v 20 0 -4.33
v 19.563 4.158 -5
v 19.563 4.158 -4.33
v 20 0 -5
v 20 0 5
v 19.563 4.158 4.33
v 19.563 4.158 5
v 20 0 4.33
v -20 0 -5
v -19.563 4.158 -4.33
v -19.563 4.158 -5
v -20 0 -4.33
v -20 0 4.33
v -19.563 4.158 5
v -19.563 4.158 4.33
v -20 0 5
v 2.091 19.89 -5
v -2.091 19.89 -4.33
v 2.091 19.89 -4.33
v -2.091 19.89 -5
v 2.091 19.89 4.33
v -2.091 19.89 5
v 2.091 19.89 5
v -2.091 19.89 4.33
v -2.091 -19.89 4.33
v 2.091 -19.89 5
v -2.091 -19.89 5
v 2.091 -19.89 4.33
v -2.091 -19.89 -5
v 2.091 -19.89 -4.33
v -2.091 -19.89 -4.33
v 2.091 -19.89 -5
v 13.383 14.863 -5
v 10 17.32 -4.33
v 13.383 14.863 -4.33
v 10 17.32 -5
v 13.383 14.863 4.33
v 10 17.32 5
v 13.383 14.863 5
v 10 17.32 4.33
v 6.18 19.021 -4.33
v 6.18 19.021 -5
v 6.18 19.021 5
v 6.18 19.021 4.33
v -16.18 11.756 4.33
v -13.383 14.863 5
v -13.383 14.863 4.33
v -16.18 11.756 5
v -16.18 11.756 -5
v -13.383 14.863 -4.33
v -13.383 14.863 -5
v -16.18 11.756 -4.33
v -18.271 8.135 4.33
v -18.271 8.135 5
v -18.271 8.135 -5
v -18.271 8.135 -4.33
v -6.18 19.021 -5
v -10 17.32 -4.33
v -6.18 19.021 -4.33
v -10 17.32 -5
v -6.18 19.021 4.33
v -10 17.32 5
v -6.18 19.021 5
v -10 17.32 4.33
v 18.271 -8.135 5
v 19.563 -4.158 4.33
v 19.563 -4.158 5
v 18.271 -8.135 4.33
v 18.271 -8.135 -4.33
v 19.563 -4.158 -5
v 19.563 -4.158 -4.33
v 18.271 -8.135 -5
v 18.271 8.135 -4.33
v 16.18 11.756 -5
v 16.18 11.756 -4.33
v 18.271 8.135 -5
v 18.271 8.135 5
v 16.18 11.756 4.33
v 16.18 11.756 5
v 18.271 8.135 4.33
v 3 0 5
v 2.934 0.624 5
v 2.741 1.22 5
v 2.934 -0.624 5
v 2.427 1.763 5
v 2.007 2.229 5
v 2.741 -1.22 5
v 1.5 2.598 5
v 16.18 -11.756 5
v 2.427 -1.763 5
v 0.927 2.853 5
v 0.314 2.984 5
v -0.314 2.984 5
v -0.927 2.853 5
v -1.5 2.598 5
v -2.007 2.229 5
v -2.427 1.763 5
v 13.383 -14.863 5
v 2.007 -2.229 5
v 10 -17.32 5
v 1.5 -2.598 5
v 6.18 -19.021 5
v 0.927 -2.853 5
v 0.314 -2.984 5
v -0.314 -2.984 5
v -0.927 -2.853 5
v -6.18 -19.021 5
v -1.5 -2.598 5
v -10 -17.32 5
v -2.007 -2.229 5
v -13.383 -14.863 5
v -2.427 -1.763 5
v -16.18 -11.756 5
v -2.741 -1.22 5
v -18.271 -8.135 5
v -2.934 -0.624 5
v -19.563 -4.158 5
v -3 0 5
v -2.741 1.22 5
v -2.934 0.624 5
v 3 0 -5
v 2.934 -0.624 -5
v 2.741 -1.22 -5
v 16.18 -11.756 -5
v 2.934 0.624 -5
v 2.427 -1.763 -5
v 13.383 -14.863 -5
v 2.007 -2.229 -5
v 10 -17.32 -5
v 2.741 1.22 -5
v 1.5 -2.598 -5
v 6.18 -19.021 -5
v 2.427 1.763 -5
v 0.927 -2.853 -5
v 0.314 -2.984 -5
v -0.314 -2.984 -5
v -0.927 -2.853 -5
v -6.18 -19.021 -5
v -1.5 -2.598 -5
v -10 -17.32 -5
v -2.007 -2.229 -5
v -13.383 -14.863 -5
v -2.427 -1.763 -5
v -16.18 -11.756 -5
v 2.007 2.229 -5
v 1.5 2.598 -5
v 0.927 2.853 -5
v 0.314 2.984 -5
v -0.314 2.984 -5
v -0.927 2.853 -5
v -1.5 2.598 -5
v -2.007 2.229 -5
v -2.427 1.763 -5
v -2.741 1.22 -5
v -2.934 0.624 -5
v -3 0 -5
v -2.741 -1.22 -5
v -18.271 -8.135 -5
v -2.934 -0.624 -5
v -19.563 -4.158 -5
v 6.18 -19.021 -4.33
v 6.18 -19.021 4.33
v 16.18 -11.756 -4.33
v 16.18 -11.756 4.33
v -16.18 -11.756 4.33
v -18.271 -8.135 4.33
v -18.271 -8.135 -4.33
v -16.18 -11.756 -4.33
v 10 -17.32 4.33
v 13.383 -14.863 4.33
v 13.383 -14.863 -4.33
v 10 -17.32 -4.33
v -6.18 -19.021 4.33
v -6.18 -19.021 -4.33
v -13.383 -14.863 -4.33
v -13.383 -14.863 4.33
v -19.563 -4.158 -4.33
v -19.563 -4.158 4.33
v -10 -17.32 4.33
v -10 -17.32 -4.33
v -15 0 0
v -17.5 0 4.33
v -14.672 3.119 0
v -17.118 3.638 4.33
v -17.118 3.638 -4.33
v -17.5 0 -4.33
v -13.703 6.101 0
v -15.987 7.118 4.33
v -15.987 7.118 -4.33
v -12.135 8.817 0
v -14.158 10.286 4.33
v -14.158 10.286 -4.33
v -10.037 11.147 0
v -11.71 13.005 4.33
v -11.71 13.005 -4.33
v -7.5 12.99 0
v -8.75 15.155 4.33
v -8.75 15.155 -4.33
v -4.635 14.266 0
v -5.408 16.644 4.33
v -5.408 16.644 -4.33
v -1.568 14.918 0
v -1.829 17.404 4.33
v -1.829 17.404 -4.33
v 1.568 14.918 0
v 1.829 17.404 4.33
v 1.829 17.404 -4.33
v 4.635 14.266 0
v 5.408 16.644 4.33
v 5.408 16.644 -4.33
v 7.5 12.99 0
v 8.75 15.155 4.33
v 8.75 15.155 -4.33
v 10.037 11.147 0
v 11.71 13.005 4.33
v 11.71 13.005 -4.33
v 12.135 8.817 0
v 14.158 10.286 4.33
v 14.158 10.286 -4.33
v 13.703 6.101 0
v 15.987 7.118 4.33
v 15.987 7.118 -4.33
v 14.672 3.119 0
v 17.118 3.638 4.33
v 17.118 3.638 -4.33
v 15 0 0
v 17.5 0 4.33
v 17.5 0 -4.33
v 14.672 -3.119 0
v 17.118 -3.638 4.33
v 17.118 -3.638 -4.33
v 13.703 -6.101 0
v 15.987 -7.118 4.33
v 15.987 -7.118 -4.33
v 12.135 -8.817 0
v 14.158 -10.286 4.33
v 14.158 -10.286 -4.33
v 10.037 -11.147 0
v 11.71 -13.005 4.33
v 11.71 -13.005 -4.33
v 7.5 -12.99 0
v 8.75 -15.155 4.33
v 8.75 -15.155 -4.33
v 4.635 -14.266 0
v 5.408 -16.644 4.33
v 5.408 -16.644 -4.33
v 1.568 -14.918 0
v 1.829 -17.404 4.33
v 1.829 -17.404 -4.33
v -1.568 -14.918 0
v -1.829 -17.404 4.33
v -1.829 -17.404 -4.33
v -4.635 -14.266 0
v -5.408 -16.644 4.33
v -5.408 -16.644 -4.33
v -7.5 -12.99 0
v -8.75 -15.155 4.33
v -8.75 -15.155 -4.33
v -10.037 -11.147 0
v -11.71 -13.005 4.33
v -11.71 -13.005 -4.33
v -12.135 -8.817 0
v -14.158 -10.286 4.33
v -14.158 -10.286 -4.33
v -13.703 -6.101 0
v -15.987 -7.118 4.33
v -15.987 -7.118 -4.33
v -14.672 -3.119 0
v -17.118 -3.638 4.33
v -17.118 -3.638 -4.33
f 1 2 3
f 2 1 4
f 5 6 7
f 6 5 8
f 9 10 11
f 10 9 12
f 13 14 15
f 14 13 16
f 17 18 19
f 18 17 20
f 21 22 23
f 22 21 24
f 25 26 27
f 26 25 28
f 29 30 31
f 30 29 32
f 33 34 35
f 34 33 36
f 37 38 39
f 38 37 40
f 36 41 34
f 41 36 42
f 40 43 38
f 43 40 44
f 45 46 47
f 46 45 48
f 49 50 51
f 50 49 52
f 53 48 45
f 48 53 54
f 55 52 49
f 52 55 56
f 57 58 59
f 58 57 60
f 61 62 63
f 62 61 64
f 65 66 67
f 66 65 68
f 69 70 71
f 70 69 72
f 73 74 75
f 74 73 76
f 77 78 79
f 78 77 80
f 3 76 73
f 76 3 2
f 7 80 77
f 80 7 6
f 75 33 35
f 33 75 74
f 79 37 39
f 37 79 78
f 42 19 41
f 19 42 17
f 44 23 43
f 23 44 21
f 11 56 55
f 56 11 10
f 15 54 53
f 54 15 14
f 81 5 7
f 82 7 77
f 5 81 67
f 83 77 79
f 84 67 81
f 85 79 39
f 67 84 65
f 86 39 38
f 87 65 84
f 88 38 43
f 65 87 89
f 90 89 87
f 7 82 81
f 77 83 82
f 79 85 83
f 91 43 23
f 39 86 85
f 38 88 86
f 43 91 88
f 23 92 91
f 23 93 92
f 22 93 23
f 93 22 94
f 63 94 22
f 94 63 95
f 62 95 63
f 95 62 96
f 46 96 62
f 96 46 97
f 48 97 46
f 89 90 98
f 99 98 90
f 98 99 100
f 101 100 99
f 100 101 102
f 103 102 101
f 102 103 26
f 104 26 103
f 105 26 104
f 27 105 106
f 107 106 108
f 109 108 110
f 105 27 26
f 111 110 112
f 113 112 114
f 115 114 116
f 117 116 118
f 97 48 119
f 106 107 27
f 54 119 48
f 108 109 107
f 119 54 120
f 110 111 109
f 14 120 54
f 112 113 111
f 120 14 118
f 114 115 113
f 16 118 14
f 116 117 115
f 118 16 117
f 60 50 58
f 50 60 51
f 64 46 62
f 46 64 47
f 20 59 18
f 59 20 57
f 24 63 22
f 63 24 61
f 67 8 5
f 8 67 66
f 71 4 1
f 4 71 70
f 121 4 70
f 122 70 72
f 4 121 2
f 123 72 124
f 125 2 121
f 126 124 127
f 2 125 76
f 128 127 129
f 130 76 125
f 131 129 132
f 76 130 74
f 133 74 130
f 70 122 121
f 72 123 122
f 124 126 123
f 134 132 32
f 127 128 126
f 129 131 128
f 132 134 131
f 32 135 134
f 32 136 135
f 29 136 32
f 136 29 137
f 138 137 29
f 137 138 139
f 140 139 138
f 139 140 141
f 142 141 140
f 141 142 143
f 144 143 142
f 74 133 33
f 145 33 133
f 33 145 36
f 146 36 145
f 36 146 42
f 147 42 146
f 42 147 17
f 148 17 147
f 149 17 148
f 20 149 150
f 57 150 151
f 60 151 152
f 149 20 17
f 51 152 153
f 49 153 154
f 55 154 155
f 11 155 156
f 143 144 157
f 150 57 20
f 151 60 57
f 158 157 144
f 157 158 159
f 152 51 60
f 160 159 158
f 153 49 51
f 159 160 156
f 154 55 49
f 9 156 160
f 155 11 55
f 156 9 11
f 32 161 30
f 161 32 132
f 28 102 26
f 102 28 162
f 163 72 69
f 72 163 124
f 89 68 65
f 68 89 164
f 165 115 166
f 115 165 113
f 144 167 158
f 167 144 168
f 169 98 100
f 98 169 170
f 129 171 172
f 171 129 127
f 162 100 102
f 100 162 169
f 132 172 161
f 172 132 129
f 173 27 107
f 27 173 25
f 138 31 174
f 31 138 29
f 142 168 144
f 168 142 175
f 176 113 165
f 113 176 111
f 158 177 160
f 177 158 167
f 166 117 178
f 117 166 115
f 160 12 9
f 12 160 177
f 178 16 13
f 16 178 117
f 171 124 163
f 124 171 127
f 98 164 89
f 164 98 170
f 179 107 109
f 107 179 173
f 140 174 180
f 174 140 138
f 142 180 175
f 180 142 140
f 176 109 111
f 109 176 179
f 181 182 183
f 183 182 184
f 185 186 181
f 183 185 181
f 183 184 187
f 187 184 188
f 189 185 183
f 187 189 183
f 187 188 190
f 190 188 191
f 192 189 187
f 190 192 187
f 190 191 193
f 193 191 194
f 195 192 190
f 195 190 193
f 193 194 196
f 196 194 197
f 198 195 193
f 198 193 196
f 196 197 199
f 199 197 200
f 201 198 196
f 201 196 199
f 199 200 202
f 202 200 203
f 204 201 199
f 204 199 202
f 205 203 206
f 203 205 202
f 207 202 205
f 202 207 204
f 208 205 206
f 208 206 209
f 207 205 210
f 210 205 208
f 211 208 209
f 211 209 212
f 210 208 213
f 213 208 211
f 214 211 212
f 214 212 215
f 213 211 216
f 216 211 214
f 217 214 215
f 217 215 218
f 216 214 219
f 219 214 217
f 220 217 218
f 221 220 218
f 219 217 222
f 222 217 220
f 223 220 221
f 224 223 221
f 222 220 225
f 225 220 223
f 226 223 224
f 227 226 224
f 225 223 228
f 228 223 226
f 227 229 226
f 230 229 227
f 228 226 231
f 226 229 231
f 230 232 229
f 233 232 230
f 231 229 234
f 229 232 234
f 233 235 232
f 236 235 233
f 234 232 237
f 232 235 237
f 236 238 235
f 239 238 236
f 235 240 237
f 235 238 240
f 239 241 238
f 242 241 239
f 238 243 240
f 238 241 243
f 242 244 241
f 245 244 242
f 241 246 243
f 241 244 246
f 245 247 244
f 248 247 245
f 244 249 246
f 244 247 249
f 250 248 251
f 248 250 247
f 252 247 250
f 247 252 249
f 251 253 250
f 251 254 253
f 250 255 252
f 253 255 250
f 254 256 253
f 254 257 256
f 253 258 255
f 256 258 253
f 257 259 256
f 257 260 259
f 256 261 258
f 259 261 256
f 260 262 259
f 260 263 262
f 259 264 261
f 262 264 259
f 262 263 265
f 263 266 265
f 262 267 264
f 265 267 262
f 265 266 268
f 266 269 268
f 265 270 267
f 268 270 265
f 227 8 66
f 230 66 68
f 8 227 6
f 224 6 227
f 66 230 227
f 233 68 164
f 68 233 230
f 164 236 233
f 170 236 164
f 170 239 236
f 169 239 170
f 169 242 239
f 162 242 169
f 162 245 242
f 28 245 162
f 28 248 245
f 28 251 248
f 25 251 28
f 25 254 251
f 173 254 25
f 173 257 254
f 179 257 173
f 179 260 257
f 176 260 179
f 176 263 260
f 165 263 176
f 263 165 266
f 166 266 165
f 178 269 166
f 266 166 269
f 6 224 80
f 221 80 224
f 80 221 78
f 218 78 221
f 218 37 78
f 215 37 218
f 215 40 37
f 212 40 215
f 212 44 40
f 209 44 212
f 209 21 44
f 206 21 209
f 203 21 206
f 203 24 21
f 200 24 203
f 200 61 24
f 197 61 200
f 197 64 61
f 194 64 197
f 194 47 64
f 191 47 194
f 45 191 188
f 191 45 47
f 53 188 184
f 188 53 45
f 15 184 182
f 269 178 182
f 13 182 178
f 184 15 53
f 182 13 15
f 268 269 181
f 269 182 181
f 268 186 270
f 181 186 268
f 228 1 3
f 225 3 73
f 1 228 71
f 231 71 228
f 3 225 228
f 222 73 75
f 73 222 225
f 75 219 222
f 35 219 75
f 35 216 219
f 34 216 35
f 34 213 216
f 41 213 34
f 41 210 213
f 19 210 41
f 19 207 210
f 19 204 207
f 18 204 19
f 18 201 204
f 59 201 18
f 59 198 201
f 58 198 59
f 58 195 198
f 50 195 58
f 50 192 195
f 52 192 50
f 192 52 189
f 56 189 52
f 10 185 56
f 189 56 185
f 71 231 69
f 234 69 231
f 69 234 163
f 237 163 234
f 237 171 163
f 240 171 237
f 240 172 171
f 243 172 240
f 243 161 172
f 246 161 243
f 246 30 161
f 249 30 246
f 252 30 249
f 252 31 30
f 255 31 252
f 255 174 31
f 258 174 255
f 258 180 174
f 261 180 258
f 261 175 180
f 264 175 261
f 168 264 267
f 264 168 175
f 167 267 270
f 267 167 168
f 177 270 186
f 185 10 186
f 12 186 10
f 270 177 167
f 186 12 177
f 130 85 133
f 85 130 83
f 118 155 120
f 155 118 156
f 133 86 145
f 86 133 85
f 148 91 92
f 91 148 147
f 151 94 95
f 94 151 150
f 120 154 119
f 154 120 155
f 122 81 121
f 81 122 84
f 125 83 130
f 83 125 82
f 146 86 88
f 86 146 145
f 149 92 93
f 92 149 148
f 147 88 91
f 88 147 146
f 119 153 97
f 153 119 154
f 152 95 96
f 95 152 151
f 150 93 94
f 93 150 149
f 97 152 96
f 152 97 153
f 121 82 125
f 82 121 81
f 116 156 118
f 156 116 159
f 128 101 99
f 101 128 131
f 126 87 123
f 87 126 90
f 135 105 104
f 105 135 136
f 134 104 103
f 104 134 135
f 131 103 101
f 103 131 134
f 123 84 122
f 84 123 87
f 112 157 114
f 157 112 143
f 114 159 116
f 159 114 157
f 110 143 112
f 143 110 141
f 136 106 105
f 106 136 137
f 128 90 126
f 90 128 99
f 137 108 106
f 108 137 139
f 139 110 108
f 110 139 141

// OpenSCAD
$fn=30;
radius_bar =5; //mm
bend_radius =15; //long wheel 


module Carrier_Wheel_axle(){
    cylinder(r=1.4,h=21,center=true);  

}    

 module Carrier_Wheel(){

    difference() {
        cylinder(r=20,h=10,center=true);

        rotate_extrude()
        translate([bend_radius + radius_bar, 0, 0])
            circle(r=radius_bar,$fn=6);

        cylinder(d=6,h=20,center=true);
     }
}

Carrier_Wheel();

//Carrier_Wheel_axle();
